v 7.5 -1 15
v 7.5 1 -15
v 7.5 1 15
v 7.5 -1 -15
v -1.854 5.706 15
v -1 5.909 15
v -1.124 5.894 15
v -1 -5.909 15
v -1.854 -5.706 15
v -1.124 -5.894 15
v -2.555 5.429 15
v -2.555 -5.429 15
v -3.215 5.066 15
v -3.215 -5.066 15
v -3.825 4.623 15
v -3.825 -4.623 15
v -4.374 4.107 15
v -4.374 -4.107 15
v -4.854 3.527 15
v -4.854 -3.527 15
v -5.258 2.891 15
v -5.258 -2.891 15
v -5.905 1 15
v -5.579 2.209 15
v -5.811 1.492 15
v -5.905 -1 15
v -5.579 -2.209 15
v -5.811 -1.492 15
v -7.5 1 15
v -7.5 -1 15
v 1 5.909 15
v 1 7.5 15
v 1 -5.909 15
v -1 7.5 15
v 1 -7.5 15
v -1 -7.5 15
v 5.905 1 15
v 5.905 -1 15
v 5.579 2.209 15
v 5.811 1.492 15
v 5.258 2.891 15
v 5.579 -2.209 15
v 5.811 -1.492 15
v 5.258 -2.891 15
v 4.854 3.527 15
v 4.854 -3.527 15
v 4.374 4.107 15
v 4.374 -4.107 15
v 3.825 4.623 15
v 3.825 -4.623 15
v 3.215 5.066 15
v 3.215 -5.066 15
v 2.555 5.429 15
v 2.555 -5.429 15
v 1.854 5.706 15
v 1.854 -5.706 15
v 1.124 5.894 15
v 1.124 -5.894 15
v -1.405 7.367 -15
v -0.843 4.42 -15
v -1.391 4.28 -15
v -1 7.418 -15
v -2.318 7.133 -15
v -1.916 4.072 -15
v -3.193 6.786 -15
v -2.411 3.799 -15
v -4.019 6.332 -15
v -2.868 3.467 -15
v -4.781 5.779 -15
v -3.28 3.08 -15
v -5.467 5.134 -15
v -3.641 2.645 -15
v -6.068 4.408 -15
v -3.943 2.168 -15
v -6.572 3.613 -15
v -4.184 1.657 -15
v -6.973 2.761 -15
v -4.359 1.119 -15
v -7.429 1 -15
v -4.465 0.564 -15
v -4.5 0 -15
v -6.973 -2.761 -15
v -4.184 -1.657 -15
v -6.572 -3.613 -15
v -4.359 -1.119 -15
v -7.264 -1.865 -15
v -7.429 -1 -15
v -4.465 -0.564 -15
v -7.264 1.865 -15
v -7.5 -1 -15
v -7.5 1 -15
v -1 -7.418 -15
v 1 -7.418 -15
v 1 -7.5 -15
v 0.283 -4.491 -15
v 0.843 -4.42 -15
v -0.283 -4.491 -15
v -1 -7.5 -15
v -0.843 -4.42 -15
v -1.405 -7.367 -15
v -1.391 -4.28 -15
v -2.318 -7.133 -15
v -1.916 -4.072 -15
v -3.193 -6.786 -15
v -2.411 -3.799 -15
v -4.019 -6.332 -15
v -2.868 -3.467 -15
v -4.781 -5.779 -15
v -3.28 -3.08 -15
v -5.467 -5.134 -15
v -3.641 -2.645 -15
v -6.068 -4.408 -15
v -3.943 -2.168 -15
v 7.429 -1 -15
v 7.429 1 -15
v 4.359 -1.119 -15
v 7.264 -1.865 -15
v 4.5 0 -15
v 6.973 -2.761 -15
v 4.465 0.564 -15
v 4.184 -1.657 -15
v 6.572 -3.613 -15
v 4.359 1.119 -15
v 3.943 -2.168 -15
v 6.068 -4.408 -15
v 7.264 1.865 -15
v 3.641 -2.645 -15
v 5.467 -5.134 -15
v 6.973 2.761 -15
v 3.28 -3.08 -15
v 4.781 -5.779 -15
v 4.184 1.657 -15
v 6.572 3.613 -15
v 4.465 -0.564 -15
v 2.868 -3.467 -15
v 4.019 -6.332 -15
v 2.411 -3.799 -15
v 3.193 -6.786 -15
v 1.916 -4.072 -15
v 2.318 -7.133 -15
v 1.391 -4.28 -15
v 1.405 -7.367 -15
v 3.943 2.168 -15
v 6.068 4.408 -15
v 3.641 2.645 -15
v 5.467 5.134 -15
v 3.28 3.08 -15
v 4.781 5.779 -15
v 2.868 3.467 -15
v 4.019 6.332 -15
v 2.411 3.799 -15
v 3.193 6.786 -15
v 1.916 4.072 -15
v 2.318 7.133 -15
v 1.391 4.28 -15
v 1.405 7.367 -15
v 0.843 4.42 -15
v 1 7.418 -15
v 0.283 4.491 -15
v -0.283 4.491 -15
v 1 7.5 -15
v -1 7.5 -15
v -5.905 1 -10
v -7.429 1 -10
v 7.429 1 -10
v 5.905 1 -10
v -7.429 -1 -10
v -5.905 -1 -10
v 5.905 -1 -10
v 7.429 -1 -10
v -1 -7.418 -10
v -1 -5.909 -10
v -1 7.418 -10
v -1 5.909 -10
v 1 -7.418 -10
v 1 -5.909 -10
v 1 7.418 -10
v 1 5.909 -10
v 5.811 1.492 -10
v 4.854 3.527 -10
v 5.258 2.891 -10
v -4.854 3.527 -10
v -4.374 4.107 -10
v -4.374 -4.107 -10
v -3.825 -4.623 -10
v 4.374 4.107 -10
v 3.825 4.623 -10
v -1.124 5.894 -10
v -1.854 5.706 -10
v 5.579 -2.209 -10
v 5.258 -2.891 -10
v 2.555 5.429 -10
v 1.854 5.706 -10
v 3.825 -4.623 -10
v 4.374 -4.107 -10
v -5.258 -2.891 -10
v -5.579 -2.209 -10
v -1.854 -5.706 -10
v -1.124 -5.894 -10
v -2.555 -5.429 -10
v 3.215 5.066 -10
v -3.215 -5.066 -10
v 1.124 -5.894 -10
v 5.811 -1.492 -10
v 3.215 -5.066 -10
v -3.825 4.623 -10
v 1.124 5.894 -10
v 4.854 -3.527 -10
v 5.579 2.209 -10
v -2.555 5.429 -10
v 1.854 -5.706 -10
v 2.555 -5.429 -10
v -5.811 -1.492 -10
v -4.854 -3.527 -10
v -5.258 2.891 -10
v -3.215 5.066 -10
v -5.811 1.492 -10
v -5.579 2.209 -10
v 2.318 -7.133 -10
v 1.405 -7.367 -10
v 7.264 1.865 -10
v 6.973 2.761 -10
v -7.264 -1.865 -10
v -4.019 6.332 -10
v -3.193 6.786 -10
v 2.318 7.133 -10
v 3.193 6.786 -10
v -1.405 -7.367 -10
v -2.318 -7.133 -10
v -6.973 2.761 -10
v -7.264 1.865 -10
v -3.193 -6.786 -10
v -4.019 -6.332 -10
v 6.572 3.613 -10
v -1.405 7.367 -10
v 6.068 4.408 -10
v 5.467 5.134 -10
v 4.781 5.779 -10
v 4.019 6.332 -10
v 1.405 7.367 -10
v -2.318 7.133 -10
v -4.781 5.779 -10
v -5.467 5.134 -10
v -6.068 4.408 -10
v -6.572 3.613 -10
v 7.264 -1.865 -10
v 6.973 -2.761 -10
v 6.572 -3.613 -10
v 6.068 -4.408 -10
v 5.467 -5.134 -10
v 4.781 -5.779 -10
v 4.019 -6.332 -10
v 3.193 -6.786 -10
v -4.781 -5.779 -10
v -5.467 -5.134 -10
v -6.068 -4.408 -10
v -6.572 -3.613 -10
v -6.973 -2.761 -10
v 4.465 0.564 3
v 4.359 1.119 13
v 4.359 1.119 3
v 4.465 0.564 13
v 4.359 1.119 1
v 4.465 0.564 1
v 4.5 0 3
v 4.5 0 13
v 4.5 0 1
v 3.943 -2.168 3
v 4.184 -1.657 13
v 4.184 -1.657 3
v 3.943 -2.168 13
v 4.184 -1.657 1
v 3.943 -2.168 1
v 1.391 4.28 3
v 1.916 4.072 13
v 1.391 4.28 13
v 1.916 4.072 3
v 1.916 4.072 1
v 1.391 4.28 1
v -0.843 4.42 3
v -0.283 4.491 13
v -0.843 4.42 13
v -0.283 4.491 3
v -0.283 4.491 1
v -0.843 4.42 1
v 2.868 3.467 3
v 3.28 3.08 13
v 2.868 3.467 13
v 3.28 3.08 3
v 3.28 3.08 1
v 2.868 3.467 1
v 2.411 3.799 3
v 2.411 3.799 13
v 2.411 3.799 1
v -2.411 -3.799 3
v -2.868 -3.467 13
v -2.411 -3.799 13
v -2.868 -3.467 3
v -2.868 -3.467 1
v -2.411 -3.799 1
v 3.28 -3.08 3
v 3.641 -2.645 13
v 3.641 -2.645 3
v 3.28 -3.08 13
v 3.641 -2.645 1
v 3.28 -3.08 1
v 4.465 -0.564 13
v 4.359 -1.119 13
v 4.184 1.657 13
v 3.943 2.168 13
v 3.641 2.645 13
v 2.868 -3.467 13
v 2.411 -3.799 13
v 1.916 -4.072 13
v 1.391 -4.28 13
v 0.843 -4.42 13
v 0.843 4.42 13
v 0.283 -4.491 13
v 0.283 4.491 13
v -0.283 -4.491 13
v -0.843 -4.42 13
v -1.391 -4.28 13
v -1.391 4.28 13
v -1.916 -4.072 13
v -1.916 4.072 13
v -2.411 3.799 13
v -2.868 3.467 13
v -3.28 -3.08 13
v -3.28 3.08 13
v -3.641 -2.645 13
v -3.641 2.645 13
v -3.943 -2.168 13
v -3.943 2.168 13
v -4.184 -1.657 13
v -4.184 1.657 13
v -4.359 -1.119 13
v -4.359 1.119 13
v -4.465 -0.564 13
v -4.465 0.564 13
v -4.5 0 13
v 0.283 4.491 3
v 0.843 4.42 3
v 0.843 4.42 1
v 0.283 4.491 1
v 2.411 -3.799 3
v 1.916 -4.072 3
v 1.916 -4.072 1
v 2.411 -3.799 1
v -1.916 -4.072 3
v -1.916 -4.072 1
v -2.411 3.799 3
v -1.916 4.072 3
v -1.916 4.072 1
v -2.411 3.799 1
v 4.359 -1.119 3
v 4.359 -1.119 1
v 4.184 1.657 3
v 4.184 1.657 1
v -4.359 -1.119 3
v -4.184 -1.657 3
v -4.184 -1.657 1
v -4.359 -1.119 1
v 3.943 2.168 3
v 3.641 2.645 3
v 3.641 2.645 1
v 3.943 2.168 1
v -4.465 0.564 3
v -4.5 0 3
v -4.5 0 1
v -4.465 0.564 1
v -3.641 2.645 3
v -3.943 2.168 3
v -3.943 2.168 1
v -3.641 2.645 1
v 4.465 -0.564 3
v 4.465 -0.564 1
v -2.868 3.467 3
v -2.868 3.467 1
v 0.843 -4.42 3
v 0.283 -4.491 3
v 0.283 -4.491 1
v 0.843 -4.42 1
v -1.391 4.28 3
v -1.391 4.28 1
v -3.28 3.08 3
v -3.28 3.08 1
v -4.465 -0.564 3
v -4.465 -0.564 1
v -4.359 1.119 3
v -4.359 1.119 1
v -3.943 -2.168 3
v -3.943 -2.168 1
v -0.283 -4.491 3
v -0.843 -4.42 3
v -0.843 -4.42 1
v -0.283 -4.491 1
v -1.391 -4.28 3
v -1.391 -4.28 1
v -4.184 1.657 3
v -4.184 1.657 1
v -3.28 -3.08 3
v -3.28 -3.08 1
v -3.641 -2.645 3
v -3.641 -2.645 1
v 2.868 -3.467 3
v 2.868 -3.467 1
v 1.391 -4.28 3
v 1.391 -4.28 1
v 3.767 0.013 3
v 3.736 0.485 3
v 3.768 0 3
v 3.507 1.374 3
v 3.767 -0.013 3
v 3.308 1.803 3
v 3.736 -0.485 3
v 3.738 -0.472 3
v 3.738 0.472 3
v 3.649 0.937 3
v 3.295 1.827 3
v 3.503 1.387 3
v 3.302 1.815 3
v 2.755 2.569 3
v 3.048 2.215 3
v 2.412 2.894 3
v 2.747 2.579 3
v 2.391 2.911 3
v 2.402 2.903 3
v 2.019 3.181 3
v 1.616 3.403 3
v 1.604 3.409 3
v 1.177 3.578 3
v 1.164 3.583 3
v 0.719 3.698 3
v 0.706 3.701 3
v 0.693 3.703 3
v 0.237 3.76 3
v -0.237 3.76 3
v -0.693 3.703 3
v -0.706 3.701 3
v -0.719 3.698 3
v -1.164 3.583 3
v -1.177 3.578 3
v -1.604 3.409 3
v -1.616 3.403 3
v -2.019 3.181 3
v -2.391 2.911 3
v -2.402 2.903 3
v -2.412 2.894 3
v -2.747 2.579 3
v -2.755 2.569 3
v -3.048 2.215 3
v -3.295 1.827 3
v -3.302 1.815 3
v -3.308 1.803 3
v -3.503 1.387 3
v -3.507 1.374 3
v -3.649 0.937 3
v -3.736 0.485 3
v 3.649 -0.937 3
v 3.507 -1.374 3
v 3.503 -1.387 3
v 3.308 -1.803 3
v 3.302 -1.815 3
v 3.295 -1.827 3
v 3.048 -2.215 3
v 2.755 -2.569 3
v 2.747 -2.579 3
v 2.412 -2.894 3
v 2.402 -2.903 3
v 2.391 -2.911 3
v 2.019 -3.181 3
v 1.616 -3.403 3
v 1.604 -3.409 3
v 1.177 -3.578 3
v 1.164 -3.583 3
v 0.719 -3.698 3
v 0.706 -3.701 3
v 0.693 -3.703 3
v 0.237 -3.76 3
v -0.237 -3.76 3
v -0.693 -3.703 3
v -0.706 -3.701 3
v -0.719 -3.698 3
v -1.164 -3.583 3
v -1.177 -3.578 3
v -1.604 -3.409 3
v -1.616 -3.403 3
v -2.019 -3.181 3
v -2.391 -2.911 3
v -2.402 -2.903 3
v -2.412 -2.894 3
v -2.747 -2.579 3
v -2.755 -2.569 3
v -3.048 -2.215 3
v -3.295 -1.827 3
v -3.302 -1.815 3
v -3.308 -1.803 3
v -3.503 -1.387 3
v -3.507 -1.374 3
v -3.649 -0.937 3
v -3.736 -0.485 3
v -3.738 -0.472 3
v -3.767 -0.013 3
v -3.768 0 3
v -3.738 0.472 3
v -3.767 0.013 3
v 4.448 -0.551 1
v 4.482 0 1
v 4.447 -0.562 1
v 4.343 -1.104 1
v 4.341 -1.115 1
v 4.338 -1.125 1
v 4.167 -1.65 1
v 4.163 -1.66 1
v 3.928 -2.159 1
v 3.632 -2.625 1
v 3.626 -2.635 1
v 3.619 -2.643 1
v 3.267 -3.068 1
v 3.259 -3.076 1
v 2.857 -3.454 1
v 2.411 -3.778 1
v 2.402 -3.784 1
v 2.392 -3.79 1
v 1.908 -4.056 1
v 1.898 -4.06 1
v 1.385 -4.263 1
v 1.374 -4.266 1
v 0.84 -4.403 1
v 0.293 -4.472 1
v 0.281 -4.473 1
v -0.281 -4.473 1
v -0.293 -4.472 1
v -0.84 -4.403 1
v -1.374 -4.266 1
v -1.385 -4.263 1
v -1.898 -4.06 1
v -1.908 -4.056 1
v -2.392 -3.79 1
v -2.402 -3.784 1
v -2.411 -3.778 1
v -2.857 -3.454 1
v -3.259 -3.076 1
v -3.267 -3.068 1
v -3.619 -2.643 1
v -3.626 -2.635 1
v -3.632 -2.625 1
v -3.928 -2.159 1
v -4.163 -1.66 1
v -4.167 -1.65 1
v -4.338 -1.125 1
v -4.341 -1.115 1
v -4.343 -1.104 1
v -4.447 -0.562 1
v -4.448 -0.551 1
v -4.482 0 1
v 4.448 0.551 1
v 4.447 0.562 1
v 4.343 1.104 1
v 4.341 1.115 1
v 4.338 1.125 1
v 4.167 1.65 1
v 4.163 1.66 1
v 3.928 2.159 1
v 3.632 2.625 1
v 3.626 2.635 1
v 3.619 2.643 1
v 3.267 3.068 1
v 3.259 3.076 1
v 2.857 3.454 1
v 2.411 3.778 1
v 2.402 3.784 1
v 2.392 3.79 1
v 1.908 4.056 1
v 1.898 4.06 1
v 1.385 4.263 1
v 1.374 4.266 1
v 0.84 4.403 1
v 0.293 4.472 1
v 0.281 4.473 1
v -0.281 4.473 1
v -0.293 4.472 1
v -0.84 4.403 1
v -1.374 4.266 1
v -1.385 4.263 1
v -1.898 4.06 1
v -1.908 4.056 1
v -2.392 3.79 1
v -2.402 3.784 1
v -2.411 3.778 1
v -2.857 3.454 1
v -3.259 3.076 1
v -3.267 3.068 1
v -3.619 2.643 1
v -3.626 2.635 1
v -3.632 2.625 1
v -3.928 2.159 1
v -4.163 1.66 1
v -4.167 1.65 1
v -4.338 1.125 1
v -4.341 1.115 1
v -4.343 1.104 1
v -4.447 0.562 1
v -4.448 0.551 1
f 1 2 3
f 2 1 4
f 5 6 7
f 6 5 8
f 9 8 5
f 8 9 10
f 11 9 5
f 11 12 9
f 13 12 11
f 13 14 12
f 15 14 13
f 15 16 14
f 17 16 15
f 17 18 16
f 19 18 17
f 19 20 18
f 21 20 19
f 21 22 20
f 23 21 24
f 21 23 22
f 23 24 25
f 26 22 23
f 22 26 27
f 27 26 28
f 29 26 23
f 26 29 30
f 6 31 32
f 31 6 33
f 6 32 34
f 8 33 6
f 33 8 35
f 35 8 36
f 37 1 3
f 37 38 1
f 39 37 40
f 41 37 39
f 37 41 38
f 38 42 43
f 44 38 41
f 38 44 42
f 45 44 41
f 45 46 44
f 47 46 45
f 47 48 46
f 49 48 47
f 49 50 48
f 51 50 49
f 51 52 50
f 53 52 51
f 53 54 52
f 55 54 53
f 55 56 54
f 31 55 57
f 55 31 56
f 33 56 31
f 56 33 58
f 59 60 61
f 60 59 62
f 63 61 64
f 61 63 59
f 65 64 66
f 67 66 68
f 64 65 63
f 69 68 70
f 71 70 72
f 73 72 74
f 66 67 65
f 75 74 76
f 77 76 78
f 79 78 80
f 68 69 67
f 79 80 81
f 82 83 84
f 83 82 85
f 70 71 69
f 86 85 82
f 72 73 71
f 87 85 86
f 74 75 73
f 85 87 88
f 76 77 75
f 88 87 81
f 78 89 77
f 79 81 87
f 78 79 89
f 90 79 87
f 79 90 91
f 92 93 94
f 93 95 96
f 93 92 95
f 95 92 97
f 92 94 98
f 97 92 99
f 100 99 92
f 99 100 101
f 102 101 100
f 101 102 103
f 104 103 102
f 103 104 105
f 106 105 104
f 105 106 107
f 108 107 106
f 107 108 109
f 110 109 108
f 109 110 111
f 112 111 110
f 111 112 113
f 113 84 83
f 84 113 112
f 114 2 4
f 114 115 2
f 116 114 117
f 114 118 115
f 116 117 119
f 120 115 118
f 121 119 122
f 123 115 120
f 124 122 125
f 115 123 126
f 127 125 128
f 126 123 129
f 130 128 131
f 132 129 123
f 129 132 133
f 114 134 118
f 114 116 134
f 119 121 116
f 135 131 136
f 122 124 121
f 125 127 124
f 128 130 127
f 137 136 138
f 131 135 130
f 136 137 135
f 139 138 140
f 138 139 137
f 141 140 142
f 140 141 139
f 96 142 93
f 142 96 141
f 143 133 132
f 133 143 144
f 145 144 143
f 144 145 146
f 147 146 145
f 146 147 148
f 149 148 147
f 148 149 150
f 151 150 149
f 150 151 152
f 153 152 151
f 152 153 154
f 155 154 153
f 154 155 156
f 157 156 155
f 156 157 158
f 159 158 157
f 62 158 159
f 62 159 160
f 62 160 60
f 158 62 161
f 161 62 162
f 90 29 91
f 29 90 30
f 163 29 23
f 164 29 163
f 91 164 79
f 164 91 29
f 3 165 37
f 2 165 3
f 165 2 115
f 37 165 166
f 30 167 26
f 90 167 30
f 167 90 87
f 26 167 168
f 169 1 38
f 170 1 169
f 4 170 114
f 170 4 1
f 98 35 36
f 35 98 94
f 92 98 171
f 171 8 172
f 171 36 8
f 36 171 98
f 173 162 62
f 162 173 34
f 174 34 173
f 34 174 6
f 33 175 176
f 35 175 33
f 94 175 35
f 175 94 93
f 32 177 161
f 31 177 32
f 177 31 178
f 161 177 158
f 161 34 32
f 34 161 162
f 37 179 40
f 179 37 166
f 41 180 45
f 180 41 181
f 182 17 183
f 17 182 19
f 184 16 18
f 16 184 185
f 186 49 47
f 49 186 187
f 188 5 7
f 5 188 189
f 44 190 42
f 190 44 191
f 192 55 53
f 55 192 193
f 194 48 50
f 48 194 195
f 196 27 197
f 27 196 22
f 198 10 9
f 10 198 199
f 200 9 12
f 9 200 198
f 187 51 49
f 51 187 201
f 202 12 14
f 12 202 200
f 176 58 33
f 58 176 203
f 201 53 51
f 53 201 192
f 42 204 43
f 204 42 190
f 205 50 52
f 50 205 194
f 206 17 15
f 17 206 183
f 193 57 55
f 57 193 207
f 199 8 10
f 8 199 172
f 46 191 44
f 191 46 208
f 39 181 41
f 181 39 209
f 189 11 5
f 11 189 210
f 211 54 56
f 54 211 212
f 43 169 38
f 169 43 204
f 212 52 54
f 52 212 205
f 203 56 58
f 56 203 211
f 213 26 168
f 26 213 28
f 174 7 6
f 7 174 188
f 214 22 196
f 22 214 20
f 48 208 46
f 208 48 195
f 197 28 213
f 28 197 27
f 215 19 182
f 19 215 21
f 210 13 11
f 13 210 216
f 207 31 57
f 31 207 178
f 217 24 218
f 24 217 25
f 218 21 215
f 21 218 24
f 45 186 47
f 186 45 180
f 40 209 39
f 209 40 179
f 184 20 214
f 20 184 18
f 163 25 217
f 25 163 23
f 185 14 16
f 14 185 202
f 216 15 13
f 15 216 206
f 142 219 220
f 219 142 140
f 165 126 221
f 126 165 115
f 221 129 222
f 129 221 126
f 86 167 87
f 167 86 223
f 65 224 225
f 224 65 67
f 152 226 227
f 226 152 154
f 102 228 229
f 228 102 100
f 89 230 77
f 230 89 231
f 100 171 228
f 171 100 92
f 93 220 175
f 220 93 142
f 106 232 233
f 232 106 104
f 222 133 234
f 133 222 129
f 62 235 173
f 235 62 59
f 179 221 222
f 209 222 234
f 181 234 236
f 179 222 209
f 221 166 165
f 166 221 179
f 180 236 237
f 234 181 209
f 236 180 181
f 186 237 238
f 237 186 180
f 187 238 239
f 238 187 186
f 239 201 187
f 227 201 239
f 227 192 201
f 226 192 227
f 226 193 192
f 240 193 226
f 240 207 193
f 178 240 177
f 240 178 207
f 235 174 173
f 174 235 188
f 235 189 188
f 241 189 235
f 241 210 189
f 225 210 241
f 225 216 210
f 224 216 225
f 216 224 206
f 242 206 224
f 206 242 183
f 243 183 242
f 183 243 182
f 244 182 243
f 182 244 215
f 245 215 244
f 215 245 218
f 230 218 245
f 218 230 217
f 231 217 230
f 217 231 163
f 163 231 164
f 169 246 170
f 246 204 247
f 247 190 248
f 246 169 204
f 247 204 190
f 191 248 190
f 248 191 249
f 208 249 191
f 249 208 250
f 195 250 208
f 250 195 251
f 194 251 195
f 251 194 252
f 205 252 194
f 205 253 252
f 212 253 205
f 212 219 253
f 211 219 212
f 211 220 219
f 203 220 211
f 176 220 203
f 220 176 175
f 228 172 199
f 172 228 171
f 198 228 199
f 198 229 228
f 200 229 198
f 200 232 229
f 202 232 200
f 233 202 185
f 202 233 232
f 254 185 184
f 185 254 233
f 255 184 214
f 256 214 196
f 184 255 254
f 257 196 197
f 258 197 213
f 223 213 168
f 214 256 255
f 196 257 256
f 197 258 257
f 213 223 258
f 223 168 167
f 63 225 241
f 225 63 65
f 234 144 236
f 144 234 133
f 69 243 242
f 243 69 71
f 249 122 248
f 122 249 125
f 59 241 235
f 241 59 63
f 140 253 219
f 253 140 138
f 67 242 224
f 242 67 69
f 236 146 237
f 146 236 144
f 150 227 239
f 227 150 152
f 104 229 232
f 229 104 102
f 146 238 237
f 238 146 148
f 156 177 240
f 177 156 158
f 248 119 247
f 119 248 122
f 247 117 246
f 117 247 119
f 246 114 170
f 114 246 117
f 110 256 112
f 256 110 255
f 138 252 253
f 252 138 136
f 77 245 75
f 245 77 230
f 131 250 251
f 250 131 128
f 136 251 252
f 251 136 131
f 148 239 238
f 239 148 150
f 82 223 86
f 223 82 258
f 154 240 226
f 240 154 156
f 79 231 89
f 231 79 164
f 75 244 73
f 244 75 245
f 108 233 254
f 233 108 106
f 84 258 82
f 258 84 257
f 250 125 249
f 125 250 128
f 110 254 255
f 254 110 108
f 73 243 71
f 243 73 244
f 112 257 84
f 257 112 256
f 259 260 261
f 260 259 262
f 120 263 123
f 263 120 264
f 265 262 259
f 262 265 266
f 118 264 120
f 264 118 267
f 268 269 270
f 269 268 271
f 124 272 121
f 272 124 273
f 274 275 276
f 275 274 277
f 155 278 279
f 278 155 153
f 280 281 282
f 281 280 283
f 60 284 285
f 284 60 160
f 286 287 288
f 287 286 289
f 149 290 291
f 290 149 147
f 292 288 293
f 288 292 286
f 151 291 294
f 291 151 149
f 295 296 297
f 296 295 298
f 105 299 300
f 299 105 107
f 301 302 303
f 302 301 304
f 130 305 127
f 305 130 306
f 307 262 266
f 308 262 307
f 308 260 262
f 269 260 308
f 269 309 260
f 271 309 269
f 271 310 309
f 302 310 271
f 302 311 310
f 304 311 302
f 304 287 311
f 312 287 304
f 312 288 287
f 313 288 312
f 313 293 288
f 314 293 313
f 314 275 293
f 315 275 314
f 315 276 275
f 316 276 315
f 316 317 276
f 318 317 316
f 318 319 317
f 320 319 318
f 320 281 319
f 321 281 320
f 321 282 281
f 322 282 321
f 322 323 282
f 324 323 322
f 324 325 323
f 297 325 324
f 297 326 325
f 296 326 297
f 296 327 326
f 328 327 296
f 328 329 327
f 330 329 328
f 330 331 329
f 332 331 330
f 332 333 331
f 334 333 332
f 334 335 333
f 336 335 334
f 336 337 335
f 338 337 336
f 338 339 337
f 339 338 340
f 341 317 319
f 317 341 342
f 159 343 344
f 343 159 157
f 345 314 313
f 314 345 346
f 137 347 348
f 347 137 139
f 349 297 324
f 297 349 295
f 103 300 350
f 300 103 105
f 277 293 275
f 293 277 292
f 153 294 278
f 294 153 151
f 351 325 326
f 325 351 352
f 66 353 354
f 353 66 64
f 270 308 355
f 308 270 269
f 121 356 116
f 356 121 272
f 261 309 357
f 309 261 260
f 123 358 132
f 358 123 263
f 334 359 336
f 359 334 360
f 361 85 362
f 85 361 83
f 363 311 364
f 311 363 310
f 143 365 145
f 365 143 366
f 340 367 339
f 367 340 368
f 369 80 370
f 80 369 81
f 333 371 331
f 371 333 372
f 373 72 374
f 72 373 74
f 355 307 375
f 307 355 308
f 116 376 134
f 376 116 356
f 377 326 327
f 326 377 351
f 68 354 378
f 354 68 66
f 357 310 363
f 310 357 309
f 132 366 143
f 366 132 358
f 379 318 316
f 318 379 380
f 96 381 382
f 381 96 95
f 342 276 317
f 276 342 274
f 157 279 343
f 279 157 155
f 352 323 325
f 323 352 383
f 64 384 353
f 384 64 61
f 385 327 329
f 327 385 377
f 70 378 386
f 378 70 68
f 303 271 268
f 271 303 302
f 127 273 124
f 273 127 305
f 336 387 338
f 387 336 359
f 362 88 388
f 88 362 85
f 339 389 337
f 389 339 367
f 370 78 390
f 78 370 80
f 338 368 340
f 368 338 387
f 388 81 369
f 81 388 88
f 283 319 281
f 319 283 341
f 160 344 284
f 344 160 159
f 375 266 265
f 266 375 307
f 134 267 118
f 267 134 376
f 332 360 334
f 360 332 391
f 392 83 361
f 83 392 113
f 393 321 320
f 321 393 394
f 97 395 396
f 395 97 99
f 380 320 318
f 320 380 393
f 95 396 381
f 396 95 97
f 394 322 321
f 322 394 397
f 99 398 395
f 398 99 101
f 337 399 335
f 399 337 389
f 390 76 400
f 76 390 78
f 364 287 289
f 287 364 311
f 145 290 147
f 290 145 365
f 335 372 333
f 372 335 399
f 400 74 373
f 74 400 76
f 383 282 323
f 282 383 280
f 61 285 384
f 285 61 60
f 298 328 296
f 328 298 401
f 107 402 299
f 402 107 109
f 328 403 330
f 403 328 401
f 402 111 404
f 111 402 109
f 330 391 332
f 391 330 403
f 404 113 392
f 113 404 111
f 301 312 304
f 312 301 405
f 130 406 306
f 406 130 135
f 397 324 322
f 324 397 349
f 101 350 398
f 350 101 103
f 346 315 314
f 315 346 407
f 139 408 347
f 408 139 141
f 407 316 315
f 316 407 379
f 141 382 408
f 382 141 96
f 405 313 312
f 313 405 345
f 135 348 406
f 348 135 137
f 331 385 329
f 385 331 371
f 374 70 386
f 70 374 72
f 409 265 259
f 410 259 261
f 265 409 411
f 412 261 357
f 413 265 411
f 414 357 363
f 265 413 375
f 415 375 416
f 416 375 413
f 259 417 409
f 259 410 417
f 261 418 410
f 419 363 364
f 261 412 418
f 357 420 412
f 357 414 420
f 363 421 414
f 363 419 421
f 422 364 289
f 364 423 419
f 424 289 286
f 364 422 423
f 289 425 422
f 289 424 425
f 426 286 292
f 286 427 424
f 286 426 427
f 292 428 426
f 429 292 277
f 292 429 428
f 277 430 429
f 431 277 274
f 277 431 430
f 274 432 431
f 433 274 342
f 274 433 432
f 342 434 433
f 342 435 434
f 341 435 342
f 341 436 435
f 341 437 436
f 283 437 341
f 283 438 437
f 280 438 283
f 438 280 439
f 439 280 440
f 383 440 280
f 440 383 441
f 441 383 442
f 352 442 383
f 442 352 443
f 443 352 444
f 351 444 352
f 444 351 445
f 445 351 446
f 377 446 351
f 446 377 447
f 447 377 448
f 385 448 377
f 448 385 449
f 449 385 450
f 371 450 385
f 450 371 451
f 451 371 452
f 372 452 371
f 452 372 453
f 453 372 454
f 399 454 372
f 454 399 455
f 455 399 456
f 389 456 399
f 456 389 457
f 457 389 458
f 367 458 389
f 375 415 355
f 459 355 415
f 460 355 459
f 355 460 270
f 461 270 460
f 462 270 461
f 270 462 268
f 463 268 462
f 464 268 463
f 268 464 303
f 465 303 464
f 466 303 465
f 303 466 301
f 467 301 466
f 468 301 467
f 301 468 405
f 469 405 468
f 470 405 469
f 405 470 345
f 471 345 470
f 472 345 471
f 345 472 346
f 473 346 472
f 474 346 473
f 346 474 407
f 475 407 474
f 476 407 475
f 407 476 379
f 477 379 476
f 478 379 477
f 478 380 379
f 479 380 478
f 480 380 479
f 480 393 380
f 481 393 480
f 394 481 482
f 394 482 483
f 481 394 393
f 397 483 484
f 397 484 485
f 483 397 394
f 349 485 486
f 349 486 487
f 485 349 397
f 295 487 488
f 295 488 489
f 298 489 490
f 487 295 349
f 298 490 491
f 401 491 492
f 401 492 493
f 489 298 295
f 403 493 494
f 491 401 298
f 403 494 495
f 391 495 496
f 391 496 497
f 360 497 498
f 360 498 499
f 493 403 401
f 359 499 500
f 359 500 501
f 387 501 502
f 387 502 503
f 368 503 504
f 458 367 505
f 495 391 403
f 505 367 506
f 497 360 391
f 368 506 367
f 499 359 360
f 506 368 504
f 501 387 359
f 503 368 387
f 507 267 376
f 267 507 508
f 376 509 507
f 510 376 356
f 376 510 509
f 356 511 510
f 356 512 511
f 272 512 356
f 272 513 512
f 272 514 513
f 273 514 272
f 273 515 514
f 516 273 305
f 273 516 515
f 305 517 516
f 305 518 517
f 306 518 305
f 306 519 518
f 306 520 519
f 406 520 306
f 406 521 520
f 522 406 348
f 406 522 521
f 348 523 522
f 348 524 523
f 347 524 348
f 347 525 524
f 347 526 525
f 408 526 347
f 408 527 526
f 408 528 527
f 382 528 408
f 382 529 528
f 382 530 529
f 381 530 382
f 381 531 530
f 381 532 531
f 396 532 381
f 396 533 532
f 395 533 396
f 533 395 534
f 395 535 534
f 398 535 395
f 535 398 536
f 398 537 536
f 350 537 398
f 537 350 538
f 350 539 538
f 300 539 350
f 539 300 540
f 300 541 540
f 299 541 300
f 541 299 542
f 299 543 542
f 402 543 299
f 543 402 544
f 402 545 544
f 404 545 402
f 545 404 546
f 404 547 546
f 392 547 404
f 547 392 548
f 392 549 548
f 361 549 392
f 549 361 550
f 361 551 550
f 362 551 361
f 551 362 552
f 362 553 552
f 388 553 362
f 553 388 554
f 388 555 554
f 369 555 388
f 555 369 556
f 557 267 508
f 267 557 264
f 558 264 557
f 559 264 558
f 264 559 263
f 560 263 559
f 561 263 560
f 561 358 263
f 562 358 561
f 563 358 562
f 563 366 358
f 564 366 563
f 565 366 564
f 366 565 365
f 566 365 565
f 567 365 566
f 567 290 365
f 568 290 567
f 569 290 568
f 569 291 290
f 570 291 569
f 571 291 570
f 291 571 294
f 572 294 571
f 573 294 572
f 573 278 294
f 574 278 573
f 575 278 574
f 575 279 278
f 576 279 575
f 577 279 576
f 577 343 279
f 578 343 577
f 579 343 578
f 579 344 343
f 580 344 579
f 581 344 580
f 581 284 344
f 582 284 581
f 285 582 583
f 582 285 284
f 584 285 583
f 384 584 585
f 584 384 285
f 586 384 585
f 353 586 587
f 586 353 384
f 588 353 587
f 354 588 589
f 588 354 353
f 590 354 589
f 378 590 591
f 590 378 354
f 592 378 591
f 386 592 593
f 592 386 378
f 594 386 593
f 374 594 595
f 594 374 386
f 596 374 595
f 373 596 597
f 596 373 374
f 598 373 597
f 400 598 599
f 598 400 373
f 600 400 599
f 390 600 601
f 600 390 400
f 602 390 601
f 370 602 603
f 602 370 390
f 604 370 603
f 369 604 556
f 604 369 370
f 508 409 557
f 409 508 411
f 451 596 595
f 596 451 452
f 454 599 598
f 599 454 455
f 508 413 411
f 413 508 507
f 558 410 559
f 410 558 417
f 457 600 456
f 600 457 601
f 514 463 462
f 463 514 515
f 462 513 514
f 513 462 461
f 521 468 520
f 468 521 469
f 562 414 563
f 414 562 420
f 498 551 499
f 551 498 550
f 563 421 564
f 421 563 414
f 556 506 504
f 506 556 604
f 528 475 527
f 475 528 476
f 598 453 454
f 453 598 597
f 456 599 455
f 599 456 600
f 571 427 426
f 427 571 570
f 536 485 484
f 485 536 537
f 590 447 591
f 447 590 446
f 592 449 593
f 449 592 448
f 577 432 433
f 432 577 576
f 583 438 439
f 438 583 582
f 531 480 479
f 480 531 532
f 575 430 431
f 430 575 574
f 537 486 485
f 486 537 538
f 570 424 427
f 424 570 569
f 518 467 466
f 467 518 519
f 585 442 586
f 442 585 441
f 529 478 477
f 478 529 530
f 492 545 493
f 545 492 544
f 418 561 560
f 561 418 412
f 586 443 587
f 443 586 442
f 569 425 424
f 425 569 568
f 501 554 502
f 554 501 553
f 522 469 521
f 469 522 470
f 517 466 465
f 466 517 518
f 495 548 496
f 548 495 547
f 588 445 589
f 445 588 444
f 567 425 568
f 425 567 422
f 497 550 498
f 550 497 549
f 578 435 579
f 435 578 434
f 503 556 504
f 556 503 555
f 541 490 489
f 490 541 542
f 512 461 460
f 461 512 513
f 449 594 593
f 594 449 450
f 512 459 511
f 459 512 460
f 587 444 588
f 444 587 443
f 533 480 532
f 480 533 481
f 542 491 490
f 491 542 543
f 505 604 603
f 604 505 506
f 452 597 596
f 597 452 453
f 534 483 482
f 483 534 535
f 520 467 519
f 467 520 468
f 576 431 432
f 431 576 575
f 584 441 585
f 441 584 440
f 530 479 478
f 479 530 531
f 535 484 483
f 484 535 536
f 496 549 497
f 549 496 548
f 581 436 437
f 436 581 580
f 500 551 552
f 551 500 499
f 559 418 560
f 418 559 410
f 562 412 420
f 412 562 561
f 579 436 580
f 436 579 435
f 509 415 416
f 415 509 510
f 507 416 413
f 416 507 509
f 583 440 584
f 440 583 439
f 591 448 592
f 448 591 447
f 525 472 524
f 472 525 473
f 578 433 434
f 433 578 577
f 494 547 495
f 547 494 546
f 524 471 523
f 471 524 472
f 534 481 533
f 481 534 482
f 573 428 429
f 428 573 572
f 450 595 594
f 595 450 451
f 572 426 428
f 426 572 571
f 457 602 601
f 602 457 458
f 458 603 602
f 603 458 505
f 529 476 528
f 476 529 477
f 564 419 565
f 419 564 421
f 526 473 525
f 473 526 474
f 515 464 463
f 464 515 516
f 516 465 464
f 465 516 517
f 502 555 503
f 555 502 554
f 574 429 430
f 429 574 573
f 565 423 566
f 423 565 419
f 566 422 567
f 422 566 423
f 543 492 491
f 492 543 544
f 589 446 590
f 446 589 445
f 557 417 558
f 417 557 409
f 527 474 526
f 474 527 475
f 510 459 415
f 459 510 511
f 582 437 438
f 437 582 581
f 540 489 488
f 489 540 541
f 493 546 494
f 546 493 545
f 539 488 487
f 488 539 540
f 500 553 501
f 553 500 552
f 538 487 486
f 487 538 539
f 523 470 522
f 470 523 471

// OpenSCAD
$fn=50;
Largo= 30;
Base=5;
Espesor = 2; 

DiametroExt = 15;
DiametroInt = 12;
DiametroAgujero = 9;

difference(){
    union(){
        cylinder(d=DiametroInt, h=Largo, center=true);
        translate([0,0,-Largo/2+Base/2]) cylinder(d=DiametroExt, h = Base, center=true);
        for (i = [0, 90]){
            rotate([0,0,i]) cube([DiametroExt, Espesor, Largo], center = true);
        }
    }
    translate([0,0,-Espesor]) cylinder(d=DiametroAgujero, h= Largo, center=true);


}

// Ahora el Aro que hace "click" en la muesca del embolo

DesplazamientoAro = 11;

translate([0,0,Largo/2 - Espesor - DesplazamientoAro]) difference(){
    cylinder(d=DiametroInt, h = Espesor, center = true);
    cylinder(d2=DiametroAgujero-1.5, d1=DiametroAgujero, h = Espesor+0.1, center = true);

}
